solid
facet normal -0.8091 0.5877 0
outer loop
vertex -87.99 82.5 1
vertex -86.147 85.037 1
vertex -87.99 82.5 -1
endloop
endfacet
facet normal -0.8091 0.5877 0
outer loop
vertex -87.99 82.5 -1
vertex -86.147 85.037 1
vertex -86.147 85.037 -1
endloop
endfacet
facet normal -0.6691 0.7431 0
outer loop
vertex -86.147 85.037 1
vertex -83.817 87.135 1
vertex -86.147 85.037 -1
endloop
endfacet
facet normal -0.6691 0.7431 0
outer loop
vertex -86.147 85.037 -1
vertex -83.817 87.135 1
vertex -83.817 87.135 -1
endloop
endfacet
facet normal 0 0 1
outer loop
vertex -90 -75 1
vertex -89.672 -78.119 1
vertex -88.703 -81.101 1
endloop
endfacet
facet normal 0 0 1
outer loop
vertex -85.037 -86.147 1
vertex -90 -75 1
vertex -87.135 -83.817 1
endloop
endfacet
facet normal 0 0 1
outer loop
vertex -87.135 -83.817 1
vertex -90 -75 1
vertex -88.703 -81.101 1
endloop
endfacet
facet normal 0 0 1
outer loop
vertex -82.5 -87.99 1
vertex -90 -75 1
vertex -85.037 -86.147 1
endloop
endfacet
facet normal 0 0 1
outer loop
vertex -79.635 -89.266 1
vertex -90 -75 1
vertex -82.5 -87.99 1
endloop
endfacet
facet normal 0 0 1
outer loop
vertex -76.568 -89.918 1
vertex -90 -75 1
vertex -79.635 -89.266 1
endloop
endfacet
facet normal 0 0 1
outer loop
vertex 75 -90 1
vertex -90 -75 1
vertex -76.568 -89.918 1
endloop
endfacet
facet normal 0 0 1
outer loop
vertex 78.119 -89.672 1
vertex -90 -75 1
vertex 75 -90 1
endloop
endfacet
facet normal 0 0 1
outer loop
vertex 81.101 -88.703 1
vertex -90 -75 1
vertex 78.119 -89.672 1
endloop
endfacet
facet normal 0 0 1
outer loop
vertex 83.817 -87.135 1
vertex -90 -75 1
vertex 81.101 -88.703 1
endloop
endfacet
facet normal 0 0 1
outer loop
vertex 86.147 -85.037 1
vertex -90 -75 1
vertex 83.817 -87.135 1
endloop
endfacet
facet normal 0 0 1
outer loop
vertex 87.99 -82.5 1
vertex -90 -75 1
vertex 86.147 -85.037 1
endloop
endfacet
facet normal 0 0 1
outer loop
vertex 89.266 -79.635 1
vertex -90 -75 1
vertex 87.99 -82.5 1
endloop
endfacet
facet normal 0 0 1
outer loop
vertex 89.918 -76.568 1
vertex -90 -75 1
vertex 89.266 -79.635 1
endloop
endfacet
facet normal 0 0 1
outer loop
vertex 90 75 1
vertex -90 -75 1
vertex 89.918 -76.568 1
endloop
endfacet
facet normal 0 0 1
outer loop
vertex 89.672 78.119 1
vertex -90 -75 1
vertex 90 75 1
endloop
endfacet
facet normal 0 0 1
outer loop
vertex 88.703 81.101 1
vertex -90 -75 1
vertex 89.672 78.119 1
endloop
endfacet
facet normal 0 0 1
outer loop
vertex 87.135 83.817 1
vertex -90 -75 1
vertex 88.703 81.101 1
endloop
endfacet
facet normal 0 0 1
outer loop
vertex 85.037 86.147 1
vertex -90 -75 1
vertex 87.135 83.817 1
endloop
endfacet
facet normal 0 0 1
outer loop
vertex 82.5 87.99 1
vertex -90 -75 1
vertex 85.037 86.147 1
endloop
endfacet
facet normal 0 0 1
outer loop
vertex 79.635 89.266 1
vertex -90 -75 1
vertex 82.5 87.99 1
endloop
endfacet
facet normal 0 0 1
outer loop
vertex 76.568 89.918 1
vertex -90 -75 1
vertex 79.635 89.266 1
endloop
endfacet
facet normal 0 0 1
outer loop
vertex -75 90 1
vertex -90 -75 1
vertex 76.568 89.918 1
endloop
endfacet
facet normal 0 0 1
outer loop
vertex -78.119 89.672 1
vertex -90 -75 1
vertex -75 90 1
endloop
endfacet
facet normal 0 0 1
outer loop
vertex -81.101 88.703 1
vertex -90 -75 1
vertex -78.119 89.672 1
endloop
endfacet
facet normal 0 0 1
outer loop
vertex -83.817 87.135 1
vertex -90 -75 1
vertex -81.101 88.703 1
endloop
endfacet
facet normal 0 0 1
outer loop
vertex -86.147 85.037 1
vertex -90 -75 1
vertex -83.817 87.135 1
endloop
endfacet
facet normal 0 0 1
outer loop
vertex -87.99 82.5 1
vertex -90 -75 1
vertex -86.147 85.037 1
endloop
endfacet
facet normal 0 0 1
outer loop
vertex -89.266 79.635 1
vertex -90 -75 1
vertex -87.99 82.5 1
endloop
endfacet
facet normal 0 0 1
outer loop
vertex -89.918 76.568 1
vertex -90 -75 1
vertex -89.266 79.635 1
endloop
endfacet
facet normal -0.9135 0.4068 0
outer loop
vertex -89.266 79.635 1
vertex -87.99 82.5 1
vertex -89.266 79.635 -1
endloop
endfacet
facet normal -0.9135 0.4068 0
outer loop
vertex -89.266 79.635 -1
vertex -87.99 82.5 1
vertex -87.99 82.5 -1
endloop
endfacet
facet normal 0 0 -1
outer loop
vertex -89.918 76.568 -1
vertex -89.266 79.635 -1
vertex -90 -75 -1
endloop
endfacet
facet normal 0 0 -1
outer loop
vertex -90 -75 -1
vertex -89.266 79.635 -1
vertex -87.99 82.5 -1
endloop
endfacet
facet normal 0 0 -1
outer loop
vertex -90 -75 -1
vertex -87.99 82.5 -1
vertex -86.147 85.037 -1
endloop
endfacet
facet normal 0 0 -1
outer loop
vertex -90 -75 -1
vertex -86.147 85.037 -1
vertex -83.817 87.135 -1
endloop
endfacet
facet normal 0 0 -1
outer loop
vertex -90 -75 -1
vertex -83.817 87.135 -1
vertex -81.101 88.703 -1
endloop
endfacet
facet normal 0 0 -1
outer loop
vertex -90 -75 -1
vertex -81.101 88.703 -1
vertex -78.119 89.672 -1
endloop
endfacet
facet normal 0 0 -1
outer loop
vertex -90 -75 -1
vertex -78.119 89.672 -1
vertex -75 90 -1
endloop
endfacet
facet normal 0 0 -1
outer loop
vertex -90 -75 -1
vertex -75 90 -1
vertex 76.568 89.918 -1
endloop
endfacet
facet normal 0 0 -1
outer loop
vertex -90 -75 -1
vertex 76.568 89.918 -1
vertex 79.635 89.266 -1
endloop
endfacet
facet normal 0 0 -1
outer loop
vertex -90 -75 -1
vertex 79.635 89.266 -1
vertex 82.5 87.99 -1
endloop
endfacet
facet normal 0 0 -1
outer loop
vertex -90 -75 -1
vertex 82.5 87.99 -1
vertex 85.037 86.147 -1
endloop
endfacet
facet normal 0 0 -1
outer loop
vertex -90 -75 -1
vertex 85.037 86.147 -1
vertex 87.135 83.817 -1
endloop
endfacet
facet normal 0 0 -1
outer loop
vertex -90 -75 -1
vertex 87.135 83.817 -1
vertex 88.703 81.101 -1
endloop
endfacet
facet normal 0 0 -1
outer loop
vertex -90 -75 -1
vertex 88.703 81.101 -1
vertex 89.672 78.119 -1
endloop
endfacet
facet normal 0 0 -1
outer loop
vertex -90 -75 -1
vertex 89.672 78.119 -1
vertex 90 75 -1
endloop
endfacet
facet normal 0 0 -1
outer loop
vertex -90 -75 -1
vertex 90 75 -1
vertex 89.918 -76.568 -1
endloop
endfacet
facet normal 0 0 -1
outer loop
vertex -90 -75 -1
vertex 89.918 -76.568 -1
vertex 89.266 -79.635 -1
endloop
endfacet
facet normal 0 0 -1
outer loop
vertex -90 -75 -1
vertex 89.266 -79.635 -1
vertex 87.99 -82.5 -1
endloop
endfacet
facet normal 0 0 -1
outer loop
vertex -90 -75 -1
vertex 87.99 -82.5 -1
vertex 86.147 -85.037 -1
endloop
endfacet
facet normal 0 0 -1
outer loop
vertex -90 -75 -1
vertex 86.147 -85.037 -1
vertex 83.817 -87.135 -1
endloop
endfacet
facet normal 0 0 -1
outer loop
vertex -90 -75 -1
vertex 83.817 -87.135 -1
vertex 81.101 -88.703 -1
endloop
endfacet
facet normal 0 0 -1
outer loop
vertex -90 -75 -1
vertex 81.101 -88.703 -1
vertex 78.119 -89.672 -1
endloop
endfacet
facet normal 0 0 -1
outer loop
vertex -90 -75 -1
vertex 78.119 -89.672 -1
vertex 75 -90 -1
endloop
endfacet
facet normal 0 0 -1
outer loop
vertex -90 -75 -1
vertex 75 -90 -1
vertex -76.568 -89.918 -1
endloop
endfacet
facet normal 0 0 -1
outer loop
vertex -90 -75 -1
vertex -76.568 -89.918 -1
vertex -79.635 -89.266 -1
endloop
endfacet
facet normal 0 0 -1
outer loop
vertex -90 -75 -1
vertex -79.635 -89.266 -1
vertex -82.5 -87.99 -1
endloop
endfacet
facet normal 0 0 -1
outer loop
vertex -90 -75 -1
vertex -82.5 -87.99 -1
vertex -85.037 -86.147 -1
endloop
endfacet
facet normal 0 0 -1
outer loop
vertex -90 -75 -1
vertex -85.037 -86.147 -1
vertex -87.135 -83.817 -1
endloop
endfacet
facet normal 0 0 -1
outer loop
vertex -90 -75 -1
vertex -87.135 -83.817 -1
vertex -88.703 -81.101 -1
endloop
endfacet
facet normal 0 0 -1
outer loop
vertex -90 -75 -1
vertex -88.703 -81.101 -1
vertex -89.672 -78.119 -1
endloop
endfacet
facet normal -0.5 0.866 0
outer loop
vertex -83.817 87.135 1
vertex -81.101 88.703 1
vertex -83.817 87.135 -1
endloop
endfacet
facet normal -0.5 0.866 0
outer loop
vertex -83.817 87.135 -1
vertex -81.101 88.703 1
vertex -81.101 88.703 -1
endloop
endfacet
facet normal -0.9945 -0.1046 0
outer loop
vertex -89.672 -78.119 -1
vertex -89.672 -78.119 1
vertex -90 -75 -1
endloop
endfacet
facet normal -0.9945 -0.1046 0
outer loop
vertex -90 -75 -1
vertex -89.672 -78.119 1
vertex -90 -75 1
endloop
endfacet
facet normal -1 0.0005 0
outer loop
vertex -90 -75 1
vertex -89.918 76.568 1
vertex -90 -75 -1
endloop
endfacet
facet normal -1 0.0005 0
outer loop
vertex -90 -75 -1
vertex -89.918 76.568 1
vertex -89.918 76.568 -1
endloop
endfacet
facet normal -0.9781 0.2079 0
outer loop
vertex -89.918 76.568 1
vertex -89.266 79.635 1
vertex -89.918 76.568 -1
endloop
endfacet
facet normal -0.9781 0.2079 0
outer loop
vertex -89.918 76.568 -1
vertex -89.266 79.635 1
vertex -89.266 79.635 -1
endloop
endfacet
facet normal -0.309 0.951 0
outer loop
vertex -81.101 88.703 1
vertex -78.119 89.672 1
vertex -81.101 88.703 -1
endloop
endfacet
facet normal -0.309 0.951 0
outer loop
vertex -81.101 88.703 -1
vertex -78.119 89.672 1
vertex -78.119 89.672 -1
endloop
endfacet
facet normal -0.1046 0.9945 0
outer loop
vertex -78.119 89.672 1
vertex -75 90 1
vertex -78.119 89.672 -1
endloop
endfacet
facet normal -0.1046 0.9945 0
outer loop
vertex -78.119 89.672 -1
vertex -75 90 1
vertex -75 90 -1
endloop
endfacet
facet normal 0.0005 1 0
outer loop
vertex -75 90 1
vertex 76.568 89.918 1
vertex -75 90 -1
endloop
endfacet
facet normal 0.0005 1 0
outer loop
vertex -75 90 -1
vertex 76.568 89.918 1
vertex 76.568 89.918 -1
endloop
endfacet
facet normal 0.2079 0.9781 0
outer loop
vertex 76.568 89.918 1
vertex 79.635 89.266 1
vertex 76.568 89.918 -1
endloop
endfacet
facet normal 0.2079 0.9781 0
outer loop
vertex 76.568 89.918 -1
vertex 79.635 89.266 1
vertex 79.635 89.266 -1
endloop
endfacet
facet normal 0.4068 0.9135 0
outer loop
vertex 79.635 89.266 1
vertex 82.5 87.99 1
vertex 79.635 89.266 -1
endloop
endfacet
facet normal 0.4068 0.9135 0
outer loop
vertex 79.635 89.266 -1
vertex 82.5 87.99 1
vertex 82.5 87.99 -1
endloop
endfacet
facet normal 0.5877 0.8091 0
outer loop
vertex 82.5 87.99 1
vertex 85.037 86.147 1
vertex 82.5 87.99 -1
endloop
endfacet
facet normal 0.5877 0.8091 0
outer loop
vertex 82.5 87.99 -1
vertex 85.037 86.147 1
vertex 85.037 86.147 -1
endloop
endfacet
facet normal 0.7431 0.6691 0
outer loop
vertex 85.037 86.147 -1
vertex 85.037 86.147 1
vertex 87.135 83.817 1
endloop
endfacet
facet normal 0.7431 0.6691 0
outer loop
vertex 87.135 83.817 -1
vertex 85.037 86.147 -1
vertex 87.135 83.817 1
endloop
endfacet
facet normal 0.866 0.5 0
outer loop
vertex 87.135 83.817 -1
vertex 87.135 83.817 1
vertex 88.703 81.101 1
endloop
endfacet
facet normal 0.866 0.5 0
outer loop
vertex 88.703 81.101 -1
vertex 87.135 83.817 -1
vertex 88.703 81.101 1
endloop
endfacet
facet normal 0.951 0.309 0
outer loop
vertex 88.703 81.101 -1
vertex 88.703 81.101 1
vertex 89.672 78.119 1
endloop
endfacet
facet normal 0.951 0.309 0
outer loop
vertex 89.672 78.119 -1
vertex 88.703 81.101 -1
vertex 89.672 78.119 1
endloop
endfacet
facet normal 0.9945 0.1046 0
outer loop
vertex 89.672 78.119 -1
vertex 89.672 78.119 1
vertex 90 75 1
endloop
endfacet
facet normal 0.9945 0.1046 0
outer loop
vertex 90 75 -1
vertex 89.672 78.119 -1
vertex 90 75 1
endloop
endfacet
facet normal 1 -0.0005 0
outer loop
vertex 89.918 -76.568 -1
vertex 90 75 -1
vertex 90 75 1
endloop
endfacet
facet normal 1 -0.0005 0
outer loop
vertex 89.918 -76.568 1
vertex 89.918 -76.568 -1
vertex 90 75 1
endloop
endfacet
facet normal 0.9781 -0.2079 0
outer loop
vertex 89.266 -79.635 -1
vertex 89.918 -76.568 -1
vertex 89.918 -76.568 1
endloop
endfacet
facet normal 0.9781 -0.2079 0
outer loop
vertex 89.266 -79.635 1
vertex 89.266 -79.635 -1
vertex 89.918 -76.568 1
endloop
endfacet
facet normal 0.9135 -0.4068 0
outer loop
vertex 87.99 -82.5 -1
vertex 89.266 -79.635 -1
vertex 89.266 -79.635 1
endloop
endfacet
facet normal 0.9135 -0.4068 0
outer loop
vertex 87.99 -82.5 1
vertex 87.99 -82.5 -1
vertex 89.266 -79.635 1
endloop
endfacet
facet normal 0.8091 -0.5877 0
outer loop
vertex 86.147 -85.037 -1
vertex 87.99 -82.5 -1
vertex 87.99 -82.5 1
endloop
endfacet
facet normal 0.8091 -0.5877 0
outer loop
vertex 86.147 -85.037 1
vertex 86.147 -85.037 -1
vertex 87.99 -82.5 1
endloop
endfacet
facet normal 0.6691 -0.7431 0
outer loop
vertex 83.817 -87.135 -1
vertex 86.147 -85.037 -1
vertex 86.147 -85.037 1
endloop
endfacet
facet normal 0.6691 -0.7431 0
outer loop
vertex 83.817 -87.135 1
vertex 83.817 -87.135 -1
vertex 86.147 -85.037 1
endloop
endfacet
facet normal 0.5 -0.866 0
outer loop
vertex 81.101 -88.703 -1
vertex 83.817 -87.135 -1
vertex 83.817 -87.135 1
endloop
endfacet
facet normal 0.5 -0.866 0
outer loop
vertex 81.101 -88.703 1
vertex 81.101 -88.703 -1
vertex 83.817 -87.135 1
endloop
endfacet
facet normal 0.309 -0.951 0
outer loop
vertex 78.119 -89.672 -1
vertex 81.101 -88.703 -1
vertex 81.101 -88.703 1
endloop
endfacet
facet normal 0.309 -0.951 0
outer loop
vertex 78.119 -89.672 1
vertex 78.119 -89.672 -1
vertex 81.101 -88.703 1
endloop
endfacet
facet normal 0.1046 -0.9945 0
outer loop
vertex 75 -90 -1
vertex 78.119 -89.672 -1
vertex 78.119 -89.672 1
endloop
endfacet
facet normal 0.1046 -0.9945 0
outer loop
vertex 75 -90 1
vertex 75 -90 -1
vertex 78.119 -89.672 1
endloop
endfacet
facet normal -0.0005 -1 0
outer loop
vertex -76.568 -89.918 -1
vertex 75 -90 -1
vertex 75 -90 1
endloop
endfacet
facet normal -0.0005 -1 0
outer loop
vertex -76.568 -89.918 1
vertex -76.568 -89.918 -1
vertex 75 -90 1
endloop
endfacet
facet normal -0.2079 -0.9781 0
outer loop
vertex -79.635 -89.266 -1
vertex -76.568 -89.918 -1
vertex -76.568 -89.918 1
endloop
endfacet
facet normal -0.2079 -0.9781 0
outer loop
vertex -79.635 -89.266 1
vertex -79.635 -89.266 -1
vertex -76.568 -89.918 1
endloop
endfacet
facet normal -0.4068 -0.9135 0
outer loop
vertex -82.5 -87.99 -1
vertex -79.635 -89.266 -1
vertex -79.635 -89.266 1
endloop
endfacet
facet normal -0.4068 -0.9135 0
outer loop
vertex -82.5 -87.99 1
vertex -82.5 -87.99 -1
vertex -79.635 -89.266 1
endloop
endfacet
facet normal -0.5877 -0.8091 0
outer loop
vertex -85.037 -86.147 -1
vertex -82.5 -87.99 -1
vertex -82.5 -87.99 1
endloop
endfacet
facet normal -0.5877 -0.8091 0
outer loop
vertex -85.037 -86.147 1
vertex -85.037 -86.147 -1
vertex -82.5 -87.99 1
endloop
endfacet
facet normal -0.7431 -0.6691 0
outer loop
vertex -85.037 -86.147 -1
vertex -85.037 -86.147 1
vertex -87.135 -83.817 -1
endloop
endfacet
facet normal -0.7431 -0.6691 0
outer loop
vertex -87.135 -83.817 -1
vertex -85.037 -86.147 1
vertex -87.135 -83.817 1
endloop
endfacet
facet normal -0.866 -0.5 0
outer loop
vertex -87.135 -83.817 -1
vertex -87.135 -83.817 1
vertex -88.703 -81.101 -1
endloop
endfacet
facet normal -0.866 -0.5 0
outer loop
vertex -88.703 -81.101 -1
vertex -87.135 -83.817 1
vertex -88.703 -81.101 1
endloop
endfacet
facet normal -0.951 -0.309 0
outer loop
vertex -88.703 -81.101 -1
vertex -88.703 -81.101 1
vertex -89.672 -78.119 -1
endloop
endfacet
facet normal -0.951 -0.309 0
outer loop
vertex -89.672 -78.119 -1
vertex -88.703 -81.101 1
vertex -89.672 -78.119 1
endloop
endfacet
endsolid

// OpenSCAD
module box(pos, r)
{
  x = pos[0]-2*r;
  y = pos[1]-2*r;
  z = pos[2];

  hull() {
    cube([x,y,z],center=true);

    for(i=[0:3]) {
      rotate([0,0,i*90])
      translate([x/2,y/2,0])
      cylinder(r=r, h=z,center=true);
    }
  }
}

box(pos=[180,180,2],r=15);
